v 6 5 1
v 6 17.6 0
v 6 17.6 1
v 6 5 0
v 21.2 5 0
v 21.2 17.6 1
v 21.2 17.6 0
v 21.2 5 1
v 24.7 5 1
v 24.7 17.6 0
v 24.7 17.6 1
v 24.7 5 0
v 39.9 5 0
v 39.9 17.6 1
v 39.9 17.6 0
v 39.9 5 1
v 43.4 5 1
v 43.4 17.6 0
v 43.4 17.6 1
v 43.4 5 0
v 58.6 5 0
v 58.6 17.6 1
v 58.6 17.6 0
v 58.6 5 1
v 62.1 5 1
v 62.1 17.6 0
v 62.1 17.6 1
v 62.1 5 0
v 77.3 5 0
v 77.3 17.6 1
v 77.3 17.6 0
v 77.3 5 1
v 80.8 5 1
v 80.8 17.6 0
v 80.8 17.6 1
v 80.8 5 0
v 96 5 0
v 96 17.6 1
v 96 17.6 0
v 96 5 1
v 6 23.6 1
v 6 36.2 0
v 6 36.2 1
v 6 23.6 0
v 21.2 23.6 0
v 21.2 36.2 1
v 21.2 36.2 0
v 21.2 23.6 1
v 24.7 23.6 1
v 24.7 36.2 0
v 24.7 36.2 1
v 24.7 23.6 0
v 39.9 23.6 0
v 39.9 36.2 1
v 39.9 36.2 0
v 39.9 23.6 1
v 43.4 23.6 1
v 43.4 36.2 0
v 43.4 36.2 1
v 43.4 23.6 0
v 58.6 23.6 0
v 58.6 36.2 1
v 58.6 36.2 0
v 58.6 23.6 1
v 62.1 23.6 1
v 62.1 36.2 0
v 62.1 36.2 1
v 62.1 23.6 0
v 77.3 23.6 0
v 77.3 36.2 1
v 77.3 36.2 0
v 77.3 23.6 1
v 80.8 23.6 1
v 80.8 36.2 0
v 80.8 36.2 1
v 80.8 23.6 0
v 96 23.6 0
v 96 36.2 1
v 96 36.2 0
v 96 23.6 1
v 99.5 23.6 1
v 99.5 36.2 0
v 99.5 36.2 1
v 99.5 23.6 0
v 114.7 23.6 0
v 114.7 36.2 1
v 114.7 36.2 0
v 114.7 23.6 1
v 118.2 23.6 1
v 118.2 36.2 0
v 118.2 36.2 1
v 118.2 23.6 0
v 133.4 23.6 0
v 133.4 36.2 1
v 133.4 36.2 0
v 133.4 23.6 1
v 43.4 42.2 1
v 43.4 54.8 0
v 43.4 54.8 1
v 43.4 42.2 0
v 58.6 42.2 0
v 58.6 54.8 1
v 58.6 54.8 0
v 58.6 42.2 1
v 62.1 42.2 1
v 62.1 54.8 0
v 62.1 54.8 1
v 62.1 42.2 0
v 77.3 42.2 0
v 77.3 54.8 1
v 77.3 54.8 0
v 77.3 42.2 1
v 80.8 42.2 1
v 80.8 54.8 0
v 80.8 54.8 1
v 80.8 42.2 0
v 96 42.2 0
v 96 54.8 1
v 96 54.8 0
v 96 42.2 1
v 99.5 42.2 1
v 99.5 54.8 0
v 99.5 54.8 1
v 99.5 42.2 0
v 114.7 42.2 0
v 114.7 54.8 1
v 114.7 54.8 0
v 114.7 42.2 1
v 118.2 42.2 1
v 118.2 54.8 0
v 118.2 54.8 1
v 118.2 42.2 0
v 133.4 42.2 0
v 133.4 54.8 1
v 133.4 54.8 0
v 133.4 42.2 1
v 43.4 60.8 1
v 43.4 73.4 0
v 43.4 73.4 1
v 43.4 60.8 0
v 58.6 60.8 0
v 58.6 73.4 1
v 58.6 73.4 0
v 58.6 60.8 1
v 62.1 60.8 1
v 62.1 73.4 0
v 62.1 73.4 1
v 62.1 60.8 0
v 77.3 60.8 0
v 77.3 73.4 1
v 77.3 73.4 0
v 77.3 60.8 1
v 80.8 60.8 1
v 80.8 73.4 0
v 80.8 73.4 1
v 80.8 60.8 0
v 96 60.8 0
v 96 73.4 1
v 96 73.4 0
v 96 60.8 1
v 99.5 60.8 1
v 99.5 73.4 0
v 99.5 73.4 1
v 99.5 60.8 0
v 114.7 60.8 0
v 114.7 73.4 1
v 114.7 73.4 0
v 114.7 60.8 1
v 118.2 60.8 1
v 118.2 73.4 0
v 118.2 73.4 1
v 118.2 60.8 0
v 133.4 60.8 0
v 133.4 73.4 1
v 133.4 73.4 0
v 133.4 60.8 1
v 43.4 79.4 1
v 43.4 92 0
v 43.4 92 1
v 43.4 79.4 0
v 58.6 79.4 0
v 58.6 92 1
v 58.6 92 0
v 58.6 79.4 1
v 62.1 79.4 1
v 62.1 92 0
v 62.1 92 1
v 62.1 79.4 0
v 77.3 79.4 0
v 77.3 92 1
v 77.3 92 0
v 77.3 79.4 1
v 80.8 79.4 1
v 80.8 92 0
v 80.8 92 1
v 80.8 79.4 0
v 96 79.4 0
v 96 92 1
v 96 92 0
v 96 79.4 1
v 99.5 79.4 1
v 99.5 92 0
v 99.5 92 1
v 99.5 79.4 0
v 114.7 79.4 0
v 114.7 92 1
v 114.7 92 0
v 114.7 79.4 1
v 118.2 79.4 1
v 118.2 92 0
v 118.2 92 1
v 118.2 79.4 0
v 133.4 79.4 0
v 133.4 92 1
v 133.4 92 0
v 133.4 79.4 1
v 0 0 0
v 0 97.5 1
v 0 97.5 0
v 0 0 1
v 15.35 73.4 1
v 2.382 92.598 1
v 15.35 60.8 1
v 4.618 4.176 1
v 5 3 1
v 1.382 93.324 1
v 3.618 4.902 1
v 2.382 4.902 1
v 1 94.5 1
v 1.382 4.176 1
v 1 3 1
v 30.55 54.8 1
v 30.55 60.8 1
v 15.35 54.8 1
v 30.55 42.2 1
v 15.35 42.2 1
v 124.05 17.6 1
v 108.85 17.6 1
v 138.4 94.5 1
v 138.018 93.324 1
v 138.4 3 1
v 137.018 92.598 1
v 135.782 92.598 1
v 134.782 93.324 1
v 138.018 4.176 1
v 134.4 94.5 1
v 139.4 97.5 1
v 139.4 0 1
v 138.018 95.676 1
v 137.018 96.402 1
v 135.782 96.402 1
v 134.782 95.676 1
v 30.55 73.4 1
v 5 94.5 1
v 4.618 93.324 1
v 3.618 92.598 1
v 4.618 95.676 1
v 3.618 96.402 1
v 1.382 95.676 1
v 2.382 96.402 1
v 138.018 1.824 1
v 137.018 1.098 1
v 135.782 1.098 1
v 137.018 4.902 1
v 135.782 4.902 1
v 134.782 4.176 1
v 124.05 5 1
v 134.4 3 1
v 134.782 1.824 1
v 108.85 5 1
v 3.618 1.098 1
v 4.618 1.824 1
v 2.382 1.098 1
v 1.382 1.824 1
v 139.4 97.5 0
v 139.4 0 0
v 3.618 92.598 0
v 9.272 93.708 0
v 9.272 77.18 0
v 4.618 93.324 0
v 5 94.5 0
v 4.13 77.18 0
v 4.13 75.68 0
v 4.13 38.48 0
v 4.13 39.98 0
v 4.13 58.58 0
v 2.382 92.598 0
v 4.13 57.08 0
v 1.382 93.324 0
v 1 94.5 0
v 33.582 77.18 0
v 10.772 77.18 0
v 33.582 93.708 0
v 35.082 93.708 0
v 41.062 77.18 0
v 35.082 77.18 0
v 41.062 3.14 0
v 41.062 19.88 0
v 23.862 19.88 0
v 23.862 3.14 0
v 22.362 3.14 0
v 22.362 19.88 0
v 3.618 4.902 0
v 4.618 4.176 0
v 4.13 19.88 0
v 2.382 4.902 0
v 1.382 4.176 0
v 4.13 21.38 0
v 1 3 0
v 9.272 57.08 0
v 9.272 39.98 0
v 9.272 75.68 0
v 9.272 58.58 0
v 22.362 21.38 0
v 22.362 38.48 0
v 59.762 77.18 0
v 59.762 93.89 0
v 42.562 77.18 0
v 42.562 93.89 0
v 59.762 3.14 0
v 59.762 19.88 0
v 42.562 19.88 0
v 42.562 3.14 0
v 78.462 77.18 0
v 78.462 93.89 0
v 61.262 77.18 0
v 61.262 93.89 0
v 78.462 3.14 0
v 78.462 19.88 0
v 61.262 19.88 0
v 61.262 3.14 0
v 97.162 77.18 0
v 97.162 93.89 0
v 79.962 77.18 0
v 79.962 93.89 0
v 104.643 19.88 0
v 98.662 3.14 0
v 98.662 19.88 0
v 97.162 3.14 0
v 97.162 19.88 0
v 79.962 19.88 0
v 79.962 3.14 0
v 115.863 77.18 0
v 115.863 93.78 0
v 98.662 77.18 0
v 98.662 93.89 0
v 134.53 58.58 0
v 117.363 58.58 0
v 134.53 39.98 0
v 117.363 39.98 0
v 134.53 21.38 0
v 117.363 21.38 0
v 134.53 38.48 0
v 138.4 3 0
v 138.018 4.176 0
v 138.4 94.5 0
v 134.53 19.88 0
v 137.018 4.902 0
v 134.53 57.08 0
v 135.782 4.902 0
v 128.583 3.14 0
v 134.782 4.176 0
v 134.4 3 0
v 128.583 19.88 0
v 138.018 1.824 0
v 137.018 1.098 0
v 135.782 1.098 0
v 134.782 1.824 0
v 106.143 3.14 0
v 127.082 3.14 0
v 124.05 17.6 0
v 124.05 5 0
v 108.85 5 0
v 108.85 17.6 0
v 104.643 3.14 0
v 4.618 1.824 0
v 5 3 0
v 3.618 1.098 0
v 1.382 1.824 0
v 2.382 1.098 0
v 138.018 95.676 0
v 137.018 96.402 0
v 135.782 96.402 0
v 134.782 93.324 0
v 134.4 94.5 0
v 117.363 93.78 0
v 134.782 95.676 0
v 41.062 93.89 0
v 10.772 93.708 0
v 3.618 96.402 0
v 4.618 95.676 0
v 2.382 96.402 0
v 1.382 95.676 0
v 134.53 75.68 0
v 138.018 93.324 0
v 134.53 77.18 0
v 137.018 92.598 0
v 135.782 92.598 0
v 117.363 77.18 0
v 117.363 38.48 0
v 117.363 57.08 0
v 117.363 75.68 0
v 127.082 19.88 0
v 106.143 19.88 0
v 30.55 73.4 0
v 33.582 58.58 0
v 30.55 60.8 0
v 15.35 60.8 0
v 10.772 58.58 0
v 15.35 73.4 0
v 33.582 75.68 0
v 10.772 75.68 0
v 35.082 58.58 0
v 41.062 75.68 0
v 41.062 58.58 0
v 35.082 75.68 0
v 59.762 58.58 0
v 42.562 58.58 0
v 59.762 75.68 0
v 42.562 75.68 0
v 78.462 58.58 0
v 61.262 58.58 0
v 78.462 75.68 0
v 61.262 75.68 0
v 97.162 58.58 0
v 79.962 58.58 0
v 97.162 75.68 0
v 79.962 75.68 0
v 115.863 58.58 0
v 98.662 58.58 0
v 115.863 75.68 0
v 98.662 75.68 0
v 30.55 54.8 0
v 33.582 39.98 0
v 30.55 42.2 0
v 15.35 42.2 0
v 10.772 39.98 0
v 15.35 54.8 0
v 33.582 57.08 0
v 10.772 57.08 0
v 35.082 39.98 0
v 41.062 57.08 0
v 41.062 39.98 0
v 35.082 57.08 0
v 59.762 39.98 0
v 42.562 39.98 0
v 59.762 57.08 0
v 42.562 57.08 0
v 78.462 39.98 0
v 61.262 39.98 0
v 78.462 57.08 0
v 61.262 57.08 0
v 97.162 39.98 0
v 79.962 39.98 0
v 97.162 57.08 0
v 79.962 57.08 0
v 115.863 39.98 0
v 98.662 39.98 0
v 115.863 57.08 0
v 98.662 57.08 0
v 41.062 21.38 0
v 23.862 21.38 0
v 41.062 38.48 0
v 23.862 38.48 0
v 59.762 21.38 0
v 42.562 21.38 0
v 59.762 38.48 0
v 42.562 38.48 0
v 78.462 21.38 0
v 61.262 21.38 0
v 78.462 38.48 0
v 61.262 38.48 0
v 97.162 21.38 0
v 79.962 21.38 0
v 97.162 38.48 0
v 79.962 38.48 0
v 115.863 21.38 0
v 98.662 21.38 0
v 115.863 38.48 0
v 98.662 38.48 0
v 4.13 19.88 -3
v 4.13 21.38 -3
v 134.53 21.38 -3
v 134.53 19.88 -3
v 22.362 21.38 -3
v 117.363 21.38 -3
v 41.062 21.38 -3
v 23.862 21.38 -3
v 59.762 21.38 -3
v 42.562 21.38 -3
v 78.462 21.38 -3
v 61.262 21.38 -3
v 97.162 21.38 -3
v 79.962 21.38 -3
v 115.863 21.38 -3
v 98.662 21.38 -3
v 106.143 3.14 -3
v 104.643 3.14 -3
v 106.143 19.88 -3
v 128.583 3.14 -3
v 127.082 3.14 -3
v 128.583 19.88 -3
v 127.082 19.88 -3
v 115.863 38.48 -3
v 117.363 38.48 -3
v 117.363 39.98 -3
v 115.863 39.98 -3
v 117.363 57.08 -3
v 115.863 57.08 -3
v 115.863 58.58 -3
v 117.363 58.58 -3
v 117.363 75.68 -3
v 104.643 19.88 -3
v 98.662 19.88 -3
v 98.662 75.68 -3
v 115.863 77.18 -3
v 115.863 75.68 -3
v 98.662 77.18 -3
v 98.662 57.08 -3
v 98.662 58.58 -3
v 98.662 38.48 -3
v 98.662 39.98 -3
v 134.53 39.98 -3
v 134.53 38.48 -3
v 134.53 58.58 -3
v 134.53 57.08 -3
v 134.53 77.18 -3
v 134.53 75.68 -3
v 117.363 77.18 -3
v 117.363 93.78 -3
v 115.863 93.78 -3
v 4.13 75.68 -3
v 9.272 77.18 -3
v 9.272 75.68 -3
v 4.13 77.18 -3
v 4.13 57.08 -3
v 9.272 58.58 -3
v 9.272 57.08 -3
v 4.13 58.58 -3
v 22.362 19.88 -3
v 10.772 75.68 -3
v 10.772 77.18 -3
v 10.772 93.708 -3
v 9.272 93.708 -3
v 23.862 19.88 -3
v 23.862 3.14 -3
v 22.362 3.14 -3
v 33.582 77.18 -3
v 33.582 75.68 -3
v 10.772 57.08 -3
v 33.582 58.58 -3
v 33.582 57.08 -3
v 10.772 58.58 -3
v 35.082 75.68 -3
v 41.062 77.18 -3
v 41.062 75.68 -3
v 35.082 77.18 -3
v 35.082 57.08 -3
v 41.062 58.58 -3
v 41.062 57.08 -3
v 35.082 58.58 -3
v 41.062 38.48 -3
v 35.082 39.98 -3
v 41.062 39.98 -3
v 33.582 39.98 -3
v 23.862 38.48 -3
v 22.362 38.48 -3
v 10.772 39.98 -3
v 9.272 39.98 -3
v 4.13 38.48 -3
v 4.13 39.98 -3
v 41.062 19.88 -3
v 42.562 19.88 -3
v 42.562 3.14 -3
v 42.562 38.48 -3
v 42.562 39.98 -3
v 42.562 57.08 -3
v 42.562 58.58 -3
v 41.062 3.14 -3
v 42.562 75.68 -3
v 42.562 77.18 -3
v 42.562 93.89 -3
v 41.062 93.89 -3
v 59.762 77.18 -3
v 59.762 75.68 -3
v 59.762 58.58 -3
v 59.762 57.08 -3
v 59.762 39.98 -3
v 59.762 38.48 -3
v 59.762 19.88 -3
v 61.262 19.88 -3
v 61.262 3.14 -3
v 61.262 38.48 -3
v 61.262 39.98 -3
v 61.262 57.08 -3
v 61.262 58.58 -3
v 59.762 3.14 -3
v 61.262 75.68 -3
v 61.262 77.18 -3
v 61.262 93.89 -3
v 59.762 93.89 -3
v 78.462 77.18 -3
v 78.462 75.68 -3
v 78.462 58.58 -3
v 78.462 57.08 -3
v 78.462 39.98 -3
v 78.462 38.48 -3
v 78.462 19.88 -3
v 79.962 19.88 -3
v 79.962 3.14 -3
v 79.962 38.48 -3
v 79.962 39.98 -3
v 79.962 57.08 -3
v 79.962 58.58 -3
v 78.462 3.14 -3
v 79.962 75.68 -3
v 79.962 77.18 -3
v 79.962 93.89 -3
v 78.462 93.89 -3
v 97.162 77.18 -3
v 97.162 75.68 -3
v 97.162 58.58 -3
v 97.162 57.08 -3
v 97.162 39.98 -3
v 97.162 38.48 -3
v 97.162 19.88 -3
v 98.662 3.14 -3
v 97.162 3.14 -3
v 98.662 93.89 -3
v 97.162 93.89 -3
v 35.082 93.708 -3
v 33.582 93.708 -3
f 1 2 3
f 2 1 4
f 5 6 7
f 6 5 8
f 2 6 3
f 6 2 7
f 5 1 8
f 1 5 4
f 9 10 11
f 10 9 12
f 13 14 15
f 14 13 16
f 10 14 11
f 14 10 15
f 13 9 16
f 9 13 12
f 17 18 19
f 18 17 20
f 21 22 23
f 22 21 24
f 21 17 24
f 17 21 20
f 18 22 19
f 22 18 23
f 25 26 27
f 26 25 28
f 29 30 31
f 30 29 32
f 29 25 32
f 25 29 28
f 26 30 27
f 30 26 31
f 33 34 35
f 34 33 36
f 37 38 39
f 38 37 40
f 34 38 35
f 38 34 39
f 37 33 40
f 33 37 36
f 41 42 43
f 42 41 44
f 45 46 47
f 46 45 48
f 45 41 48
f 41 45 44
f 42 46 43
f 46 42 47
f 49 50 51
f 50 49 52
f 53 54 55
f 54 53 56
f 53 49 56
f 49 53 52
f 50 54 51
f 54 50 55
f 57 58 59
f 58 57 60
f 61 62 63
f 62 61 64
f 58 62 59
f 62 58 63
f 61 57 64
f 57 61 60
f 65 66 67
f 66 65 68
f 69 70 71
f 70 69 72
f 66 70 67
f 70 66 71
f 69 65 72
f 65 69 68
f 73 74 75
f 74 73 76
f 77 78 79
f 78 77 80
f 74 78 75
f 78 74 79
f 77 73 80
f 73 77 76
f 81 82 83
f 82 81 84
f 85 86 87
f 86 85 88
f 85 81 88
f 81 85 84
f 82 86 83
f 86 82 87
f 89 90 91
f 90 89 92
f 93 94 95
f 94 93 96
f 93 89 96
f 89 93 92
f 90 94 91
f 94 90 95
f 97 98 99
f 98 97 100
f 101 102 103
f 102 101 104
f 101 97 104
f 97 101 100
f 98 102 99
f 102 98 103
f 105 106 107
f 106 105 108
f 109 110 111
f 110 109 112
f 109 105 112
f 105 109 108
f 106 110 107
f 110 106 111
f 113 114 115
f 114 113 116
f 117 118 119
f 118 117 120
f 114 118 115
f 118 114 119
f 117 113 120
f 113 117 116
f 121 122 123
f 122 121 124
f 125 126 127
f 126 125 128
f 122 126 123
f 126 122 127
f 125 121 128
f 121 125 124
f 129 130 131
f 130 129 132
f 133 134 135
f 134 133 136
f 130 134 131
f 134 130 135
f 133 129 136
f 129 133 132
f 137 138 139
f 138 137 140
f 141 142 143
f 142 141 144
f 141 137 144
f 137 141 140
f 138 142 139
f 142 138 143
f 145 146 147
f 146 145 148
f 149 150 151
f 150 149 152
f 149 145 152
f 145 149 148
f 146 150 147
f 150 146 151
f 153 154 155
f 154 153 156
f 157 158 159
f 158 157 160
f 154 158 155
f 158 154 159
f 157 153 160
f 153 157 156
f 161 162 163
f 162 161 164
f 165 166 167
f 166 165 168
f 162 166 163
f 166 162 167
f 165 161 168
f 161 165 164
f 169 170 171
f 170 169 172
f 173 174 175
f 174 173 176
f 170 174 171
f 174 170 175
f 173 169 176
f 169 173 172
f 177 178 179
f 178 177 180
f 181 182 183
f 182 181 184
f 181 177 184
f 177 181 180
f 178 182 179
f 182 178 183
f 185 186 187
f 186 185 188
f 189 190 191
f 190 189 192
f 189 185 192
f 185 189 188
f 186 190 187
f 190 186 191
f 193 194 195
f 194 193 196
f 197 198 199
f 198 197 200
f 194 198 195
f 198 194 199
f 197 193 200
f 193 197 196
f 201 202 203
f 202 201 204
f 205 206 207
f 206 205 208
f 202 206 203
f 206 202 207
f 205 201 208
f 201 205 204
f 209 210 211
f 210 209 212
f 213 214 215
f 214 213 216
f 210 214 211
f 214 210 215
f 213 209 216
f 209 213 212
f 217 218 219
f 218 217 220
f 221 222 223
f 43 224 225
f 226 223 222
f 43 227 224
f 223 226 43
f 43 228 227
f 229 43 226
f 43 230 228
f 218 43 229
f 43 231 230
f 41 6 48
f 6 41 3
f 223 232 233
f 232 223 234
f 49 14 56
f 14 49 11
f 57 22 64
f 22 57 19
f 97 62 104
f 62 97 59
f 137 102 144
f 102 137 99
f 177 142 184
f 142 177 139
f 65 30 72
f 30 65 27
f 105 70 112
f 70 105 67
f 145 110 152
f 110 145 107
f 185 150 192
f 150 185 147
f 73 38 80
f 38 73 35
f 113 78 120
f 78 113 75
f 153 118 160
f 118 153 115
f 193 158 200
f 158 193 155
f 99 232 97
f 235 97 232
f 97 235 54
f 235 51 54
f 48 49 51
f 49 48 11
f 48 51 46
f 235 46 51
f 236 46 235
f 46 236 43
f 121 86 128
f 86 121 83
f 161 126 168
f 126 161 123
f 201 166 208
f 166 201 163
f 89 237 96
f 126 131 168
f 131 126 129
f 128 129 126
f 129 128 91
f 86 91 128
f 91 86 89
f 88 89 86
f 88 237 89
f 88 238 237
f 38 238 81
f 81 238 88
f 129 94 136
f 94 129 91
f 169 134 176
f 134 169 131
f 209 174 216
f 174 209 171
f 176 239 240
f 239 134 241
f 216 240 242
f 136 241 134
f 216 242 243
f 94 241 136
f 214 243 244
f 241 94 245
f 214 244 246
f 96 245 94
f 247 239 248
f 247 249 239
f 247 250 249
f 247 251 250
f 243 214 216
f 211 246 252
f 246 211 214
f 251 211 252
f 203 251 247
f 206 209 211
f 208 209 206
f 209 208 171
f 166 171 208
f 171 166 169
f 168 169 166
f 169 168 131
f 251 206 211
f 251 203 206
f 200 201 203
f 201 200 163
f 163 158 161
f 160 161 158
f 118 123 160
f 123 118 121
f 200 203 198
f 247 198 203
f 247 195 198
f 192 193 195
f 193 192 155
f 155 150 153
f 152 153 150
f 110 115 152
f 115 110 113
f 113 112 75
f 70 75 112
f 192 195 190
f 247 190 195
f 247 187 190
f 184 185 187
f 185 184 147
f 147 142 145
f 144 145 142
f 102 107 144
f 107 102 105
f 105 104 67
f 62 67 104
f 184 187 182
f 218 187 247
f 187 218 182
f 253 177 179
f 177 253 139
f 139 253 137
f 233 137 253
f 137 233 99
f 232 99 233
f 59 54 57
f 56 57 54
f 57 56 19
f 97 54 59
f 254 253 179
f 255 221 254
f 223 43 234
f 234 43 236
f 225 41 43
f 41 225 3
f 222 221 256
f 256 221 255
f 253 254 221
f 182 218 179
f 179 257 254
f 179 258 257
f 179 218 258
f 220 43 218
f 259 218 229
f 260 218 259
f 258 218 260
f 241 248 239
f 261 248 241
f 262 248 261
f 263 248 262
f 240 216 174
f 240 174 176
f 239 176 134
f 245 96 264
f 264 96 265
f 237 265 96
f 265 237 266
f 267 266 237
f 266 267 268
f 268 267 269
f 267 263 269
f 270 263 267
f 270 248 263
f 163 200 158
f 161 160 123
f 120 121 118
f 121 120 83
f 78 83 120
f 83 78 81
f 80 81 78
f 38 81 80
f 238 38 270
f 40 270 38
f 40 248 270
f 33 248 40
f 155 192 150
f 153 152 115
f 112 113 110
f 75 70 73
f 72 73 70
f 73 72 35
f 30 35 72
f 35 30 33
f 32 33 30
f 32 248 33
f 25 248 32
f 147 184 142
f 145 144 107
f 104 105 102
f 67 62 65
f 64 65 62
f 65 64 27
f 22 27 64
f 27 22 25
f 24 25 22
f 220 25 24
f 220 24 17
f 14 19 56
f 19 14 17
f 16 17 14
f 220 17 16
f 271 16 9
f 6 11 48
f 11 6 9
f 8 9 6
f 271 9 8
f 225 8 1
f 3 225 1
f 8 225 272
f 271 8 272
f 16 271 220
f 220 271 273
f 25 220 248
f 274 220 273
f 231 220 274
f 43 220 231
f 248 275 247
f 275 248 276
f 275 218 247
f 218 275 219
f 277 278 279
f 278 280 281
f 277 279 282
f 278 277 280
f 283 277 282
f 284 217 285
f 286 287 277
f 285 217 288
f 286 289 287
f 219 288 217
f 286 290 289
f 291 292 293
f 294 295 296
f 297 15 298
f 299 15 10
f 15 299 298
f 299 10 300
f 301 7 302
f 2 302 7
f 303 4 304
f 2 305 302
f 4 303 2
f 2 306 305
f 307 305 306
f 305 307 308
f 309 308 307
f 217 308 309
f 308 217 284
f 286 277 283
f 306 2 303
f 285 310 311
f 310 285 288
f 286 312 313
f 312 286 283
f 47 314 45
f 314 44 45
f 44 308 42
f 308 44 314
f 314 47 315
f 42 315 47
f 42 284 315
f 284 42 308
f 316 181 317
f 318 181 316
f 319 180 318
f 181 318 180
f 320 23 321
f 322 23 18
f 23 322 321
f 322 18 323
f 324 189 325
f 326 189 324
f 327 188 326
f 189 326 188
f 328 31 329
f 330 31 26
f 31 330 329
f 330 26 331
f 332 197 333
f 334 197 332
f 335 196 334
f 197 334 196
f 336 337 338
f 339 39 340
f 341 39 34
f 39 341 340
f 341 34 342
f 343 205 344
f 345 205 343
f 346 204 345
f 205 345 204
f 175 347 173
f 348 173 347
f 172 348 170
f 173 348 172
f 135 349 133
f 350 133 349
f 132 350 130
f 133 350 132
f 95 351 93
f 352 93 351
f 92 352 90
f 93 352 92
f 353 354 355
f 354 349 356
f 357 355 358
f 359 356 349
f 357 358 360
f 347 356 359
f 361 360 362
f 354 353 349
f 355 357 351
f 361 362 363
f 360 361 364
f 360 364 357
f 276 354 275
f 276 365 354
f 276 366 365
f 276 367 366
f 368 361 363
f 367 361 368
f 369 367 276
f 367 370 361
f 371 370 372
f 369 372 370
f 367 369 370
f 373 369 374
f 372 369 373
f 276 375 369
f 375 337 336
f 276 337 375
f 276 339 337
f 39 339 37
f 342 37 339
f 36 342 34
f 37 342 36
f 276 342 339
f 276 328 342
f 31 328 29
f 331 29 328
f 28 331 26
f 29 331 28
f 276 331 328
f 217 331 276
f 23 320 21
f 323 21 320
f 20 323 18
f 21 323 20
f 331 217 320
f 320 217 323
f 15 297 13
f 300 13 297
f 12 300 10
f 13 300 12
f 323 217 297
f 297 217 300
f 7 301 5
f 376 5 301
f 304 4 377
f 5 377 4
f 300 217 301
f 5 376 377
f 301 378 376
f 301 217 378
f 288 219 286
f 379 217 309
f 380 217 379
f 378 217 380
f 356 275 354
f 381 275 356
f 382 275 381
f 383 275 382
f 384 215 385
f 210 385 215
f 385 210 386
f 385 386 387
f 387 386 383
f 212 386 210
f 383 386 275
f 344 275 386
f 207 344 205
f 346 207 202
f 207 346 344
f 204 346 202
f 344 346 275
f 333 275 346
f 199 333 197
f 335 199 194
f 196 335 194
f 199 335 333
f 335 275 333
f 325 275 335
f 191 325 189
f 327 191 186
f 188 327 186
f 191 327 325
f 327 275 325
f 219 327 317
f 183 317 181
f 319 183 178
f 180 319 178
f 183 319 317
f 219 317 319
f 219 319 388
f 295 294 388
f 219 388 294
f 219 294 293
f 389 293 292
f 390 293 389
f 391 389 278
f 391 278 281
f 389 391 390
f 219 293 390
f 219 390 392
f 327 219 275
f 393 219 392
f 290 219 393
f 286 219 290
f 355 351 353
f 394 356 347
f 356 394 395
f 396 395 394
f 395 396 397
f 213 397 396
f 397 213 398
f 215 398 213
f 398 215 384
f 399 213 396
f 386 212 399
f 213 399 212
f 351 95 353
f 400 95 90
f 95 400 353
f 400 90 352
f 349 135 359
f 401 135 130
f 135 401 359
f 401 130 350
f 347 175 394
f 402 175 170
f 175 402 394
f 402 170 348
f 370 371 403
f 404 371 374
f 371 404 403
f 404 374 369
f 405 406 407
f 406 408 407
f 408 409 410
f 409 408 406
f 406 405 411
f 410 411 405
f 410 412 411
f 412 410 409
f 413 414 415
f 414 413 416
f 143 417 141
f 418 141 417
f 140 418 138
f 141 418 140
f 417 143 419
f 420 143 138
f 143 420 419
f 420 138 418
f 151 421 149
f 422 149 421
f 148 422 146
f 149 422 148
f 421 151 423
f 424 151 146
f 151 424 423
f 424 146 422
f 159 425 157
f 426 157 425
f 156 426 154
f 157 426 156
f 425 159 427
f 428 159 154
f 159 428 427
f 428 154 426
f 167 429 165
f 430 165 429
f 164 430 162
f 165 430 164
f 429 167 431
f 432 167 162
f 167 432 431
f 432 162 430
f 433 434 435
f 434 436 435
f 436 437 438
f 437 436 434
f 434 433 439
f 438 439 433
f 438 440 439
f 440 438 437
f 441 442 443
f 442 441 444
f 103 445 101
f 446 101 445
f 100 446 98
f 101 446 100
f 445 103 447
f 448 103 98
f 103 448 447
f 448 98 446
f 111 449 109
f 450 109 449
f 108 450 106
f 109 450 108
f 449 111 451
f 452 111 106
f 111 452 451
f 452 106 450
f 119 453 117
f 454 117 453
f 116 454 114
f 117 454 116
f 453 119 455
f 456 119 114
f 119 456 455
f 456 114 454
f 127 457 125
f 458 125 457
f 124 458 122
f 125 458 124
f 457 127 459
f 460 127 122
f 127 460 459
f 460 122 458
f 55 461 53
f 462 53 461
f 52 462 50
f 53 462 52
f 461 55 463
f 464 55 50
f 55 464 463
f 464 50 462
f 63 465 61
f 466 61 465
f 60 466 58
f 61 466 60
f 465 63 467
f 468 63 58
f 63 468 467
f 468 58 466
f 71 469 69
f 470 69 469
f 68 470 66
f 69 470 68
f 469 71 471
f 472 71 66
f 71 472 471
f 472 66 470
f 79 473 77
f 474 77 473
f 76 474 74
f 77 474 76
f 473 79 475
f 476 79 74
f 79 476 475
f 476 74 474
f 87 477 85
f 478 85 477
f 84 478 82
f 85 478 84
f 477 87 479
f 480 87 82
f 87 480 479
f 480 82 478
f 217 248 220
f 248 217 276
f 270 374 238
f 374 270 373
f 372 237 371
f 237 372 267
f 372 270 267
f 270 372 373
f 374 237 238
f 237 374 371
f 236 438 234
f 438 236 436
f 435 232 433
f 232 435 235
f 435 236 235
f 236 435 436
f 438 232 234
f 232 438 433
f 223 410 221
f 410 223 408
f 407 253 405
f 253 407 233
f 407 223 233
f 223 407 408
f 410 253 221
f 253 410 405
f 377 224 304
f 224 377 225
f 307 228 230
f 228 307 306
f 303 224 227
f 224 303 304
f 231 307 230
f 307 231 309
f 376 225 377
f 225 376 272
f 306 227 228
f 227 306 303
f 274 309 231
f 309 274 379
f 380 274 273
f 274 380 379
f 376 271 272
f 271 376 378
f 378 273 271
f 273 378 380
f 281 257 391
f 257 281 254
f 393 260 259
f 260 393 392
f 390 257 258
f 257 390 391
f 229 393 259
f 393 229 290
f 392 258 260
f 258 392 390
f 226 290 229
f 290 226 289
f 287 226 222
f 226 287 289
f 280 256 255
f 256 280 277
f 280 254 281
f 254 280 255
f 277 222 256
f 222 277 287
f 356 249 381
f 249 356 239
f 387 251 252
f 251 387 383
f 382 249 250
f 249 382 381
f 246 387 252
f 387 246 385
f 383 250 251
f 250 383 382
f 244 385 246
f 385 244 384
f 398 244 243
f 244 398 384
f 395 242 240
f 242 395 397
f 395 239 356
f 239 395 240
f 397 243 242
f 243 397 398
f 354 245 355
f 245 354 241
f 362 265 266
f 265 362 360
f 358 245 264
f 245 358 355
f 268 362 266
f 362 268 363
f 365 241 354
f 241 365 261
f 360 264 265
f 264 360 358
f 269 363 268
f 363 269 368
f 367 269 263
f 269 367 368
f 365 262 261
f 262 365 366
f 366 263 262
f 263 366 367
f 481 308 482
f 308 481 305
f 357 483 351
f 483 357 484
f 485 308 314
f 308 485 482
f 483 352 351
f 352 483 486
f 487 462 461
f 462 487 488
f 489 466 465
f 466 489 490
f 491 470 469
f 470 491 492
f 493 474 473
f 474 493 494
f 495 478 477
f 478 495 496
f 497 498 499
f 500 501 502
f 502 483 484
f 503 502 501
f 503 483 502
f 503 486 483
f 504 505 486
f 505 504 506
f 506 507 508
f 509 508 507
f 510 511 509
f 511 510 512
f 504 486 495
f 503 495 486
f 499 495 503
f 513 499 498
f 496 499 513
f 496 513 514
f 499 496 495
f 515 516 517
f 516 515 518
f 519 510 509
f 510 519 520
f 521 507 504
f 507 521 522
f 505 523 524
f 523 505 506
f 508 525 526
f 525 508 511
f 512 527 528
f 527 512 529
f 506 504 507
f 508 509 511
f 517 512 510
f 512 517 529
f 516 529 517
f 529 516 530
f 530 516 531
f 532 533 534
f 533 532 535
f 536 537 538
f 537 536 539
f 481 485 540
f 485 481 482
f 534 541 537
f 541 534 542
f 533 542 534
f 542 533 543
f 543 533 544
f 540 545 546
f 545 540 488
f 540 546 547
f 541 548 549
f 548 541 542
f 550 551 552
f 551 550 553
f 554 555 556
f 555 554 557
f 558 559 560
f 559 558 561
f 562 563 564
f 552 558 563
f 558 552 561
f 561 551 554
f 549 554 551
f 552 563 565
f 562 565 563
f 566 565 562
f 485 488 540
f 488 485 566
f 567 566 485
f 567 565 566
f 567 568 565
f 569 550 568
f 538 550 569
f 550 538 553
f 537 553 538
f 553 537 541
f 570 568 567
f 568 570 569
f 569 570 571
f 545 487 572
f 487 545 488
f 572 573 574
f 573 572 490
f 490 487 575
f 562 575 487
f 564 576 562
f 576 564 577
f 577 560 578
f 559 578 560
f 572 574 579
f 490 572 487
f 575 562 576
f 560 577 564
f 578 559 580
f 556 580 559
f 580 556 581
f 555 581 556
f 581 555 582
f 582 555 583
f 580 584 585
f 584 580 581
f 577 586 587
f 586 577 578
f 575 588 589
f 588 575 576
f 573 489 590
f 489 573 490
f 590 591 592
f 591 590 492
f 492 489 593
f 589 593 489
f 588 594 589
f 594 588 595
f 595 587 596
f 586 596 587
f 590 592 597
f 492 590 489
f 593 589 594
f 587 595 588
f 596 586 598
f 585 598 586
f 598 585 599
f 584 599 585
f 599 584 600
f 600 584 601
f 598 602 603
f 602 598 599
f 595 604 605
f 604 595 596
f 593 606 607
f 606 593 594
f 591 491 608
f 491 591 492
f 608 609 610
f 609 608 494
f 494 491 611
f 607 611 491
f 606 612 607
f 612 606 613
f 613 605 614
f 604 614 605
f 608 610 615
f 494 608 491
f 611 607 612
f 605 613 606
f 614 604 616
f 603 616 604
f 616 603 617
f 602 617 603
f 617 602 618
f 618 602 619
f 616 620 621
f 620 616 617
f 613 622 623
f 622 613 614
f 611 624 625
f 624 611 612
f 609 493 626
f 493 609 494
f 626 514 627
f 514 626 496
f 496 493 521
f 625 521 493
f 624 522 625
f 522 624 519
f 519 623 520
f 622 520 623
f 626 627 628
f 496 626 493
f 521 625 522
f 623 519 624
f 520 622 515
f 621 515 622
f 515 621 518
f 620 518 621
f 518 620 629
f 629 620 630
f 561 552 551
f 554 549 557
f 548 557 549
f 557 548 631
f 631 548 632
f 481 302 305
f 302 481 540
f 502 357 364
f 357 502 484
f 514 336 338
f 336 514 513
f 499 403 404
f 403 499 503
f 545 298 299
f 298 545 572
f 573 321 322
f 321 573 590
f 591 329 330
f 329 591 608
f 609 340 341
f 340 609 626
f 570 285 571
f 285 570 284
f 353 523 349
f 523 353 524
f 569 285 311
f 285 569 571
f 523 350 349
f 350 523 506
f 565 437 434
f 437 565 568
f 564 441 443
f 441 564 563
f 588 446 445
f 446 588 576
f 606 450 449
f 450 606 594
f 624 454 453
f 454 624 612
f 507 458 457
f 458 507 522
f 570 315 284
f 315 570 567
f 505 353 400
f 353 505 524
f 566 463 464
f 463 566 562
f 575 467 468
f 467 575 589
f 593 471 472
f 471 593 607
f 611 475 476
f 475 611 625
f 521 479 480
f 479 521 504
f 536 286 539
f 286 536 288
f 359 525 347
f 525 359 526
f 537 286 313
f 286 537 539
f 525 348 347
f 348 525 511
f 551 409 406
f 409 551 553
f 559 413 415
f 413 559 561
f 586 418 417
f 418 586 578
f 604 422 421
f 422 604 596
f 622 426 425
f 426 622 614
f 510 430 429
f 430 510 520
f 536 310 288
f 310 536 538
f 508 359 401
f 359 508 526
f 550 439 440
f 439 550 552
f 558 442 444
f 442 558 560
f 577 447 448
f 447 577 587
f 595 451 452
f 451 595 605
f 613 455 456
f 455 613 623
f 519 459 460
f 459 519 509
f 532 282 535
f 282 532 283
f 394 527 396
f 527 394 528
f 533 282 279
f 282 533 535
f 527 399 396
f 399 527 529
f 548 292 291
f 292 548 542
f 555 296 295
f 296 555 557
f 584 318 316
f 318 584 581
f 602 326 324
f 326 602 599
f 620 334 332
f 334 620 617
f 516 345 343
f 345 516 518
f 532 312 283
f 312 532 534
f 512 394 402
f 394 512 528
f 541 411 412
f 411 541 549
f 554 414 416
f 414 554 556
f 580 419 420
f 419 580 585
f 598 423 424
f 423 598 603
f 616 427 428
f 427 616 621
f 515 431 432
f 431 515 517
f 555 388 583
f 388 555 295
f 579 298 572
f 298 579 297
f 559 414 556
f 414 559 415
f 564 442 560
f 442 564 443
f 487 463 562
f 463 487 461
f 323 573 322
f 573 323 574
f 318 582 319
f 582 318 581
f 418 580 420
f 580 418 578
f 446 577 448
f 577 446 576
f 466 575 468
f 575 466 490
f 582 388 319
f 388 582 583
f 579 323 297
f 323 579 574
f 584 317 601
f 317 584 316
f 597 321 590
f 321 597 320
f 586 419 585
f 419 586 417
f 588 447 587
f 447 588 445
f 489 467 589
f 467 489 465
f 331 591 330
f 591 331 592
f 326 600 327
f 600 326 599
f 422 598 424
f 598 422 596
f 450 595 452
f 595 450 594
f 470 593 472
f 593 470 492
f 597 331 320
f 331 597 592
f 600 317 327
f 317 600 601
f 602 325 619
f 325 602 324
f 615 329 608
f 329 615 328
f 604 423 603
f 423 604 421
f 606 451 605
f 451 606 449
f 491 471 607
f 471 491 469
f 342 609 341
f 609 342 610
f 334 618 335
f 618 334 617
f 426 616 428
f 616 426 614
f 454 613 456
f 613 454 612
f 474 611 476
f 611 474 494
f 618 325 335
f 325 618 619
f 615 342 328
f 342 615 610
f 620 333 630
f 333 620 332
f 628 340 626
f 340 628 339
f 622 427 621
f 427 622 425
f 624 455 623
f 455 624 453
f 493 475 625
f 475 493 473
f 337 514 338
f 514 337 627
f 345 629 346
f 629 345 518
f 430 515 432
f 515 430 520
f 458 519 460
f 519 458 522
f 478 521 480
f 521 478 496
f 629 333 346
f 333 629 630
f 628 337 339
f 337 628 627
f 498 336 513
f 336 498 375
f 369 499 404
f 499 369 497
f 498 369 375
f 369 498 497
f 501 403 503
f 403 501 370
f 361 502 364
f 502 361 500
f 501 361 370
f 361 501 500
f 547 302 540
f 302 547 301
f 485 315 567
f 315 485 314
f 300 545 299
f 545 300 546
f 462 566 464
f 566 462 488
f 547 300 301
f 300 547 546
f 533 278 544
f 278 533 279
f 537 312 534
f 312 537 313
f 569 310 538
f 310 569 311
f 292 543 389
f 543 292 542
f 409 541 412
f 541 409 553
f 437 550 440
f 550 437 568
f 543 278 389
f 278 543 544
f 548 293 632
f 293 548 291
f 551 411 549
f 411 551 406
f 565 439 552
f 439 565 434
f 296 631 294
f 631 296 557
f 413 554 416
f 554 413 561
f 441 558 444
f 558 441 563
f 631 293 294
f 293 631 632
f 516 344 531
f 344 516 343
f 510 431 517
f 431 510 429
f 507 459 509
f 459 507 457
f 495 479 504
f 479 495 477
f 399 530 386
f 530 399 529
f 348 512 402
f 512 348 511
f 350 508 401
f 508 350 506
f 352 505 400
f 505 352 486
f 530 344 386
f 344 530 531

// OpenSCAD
/* Module A v2
 * Fewer keys
 * Keycaps actually fit
 * Cross beams for support
 * Keys actally  fit, snuggly
 */
 
keyCols = 7;
keyRows = 5;
keyX = 15.2;
keyY = 12.6;
keySpace = 3.5;
vKeySpace=6;
edgeSpaceAddition = 4;
edgeSpace = (edgeSpaceAddition*2)-keySpace;
keyZ = -1;

supportH = 3.5;
supportW = 1.5;
supportZ = -3;

moduleX = (edgeSpace+edgeSpaceAddition)+(keySpace*keyCols)+keyX*(keyCols-1)+keyX;
moduleY = (edgeSpaceAddition*2-keySpace)+(vKeySpace*keyRows)+keyY*(keyRows-1)+keyY;
moduleZ = 1;

keySize = [keyX, keyY, moduleZ+2];

function position(x,y,z) = [edgeSpace+keySpace*x+keyX*(x-1)-(edgeSpaceAddition/2), edgeSpace-keySpace+(vKeySpace)*y+keyY*(y-1)-(edgeSpaceAddition/2), z];

module screwHoleD (x, y, depth){
	translate([x,y,keyZ]) cylinder(h=depth, r=2, $fn=10);
}

module screwHole (x, y){
  screwHoleD(x,y,moduleZ+2);
}



module keyHoles (yStart, yEnd, xStart, xEnd){
  for(y = [yStart:yEnd]){
    for(x = [xStart:xEnd]){
      translate(position(x,y,keyZ)) cube(keySize);
    }
  }
}

module hBeam (bStart, bEnd){
  for (b = [bStart:bEnd]){  
    color([0.5,0,0]){
      translate(position(0.9,b-0.2,supportZ)){  
        cube([moduleX-(edgeSpace*2),supportW,supportH]);
      }
    }
  }
}

module vBeam (bStart, bEnd){
  for (b = [bStart:bEnd]){  
    color([0.5,0,0]){
      translate(position(b-0.125,0.9,supportZ)){  
        cube([1.5,moduleY-(edgeSpace*1.5),supportH]);
      }
    }
  }
}

module vBeam2 (xStart, xEnd, yStart, yEnd){
  for (x = [xStart:xEnd]){  
      color([0.5,0,0]){
        translate(position(x-0.125,(0.9*yStart),supportZ)){  
          cube([1.5,(keyY*yEnd)-1.7,supportH]);
        }
      }
    }
}

difference(){
  cube([moduleX,moduleY,moduleZ]);
  keyHoles(1,1,1,5);
  keyHoles(1,1,6.5,6.5);
  
  keyHoles(2,2,1,7);
  
  keyHoles(3,3,1.5,1.5);
  keyHoles(3,3,3,7);
  
  keyHoles(4,4,1.5,1.5);
  keyHoles(4,4,3,7);
  
  keyHoles(5,5,3,7);
  
  screwHole(3,3);
  screwHole(3,moduleY-3);
	screwHole(moduleX-3,moduleY-3);
	screwHole(moduleX-3,3);
  
}


hBeam(2, keyRows);
//vBeam(2, keyCols);
vBeam2(6.4,6.4, 1, 1.5);
vBeam2(7.6,7.6, 1, 1.5);
vBeam2(2,2, 1, 3);
vBeam2(1.3,1.3, 3.2, 4.4);
vBeam2(2.6,2.6, 3.2, 4.4);
vBeam(3,6);
vBeam2(7,7, 2, 6);


//translate([0,0,-10]){
//  difference(){
//    cube([moduleX,moduleY,moduleZ]);
//    translate([10,5,0]){
//      cube([10,moduleY-10,moduleZ]);
//    }
//    translate([moduleX-20,5,0]){
//      cube([10,moduleY-10,moduleZ]);
//    }
//    
//    screwHole(3,3);
//    screwHole(3,moduleY-3);
//    screwHole(moduleX-3,moduleY-3);
//    screwHole(moduleX-3,3);
//  }
//  
//  translate([(moduleX/2)-9, edgeSpace, -5]){
//    cube([supportW,moduleY-(edgeSpace*2),5]);
//  }
//  translate([(moduleX/2)+9, edgeSpace, -5]){
//    cube([supportW,moduleY-(edgeSpace*2),5]);
//  }
//}
